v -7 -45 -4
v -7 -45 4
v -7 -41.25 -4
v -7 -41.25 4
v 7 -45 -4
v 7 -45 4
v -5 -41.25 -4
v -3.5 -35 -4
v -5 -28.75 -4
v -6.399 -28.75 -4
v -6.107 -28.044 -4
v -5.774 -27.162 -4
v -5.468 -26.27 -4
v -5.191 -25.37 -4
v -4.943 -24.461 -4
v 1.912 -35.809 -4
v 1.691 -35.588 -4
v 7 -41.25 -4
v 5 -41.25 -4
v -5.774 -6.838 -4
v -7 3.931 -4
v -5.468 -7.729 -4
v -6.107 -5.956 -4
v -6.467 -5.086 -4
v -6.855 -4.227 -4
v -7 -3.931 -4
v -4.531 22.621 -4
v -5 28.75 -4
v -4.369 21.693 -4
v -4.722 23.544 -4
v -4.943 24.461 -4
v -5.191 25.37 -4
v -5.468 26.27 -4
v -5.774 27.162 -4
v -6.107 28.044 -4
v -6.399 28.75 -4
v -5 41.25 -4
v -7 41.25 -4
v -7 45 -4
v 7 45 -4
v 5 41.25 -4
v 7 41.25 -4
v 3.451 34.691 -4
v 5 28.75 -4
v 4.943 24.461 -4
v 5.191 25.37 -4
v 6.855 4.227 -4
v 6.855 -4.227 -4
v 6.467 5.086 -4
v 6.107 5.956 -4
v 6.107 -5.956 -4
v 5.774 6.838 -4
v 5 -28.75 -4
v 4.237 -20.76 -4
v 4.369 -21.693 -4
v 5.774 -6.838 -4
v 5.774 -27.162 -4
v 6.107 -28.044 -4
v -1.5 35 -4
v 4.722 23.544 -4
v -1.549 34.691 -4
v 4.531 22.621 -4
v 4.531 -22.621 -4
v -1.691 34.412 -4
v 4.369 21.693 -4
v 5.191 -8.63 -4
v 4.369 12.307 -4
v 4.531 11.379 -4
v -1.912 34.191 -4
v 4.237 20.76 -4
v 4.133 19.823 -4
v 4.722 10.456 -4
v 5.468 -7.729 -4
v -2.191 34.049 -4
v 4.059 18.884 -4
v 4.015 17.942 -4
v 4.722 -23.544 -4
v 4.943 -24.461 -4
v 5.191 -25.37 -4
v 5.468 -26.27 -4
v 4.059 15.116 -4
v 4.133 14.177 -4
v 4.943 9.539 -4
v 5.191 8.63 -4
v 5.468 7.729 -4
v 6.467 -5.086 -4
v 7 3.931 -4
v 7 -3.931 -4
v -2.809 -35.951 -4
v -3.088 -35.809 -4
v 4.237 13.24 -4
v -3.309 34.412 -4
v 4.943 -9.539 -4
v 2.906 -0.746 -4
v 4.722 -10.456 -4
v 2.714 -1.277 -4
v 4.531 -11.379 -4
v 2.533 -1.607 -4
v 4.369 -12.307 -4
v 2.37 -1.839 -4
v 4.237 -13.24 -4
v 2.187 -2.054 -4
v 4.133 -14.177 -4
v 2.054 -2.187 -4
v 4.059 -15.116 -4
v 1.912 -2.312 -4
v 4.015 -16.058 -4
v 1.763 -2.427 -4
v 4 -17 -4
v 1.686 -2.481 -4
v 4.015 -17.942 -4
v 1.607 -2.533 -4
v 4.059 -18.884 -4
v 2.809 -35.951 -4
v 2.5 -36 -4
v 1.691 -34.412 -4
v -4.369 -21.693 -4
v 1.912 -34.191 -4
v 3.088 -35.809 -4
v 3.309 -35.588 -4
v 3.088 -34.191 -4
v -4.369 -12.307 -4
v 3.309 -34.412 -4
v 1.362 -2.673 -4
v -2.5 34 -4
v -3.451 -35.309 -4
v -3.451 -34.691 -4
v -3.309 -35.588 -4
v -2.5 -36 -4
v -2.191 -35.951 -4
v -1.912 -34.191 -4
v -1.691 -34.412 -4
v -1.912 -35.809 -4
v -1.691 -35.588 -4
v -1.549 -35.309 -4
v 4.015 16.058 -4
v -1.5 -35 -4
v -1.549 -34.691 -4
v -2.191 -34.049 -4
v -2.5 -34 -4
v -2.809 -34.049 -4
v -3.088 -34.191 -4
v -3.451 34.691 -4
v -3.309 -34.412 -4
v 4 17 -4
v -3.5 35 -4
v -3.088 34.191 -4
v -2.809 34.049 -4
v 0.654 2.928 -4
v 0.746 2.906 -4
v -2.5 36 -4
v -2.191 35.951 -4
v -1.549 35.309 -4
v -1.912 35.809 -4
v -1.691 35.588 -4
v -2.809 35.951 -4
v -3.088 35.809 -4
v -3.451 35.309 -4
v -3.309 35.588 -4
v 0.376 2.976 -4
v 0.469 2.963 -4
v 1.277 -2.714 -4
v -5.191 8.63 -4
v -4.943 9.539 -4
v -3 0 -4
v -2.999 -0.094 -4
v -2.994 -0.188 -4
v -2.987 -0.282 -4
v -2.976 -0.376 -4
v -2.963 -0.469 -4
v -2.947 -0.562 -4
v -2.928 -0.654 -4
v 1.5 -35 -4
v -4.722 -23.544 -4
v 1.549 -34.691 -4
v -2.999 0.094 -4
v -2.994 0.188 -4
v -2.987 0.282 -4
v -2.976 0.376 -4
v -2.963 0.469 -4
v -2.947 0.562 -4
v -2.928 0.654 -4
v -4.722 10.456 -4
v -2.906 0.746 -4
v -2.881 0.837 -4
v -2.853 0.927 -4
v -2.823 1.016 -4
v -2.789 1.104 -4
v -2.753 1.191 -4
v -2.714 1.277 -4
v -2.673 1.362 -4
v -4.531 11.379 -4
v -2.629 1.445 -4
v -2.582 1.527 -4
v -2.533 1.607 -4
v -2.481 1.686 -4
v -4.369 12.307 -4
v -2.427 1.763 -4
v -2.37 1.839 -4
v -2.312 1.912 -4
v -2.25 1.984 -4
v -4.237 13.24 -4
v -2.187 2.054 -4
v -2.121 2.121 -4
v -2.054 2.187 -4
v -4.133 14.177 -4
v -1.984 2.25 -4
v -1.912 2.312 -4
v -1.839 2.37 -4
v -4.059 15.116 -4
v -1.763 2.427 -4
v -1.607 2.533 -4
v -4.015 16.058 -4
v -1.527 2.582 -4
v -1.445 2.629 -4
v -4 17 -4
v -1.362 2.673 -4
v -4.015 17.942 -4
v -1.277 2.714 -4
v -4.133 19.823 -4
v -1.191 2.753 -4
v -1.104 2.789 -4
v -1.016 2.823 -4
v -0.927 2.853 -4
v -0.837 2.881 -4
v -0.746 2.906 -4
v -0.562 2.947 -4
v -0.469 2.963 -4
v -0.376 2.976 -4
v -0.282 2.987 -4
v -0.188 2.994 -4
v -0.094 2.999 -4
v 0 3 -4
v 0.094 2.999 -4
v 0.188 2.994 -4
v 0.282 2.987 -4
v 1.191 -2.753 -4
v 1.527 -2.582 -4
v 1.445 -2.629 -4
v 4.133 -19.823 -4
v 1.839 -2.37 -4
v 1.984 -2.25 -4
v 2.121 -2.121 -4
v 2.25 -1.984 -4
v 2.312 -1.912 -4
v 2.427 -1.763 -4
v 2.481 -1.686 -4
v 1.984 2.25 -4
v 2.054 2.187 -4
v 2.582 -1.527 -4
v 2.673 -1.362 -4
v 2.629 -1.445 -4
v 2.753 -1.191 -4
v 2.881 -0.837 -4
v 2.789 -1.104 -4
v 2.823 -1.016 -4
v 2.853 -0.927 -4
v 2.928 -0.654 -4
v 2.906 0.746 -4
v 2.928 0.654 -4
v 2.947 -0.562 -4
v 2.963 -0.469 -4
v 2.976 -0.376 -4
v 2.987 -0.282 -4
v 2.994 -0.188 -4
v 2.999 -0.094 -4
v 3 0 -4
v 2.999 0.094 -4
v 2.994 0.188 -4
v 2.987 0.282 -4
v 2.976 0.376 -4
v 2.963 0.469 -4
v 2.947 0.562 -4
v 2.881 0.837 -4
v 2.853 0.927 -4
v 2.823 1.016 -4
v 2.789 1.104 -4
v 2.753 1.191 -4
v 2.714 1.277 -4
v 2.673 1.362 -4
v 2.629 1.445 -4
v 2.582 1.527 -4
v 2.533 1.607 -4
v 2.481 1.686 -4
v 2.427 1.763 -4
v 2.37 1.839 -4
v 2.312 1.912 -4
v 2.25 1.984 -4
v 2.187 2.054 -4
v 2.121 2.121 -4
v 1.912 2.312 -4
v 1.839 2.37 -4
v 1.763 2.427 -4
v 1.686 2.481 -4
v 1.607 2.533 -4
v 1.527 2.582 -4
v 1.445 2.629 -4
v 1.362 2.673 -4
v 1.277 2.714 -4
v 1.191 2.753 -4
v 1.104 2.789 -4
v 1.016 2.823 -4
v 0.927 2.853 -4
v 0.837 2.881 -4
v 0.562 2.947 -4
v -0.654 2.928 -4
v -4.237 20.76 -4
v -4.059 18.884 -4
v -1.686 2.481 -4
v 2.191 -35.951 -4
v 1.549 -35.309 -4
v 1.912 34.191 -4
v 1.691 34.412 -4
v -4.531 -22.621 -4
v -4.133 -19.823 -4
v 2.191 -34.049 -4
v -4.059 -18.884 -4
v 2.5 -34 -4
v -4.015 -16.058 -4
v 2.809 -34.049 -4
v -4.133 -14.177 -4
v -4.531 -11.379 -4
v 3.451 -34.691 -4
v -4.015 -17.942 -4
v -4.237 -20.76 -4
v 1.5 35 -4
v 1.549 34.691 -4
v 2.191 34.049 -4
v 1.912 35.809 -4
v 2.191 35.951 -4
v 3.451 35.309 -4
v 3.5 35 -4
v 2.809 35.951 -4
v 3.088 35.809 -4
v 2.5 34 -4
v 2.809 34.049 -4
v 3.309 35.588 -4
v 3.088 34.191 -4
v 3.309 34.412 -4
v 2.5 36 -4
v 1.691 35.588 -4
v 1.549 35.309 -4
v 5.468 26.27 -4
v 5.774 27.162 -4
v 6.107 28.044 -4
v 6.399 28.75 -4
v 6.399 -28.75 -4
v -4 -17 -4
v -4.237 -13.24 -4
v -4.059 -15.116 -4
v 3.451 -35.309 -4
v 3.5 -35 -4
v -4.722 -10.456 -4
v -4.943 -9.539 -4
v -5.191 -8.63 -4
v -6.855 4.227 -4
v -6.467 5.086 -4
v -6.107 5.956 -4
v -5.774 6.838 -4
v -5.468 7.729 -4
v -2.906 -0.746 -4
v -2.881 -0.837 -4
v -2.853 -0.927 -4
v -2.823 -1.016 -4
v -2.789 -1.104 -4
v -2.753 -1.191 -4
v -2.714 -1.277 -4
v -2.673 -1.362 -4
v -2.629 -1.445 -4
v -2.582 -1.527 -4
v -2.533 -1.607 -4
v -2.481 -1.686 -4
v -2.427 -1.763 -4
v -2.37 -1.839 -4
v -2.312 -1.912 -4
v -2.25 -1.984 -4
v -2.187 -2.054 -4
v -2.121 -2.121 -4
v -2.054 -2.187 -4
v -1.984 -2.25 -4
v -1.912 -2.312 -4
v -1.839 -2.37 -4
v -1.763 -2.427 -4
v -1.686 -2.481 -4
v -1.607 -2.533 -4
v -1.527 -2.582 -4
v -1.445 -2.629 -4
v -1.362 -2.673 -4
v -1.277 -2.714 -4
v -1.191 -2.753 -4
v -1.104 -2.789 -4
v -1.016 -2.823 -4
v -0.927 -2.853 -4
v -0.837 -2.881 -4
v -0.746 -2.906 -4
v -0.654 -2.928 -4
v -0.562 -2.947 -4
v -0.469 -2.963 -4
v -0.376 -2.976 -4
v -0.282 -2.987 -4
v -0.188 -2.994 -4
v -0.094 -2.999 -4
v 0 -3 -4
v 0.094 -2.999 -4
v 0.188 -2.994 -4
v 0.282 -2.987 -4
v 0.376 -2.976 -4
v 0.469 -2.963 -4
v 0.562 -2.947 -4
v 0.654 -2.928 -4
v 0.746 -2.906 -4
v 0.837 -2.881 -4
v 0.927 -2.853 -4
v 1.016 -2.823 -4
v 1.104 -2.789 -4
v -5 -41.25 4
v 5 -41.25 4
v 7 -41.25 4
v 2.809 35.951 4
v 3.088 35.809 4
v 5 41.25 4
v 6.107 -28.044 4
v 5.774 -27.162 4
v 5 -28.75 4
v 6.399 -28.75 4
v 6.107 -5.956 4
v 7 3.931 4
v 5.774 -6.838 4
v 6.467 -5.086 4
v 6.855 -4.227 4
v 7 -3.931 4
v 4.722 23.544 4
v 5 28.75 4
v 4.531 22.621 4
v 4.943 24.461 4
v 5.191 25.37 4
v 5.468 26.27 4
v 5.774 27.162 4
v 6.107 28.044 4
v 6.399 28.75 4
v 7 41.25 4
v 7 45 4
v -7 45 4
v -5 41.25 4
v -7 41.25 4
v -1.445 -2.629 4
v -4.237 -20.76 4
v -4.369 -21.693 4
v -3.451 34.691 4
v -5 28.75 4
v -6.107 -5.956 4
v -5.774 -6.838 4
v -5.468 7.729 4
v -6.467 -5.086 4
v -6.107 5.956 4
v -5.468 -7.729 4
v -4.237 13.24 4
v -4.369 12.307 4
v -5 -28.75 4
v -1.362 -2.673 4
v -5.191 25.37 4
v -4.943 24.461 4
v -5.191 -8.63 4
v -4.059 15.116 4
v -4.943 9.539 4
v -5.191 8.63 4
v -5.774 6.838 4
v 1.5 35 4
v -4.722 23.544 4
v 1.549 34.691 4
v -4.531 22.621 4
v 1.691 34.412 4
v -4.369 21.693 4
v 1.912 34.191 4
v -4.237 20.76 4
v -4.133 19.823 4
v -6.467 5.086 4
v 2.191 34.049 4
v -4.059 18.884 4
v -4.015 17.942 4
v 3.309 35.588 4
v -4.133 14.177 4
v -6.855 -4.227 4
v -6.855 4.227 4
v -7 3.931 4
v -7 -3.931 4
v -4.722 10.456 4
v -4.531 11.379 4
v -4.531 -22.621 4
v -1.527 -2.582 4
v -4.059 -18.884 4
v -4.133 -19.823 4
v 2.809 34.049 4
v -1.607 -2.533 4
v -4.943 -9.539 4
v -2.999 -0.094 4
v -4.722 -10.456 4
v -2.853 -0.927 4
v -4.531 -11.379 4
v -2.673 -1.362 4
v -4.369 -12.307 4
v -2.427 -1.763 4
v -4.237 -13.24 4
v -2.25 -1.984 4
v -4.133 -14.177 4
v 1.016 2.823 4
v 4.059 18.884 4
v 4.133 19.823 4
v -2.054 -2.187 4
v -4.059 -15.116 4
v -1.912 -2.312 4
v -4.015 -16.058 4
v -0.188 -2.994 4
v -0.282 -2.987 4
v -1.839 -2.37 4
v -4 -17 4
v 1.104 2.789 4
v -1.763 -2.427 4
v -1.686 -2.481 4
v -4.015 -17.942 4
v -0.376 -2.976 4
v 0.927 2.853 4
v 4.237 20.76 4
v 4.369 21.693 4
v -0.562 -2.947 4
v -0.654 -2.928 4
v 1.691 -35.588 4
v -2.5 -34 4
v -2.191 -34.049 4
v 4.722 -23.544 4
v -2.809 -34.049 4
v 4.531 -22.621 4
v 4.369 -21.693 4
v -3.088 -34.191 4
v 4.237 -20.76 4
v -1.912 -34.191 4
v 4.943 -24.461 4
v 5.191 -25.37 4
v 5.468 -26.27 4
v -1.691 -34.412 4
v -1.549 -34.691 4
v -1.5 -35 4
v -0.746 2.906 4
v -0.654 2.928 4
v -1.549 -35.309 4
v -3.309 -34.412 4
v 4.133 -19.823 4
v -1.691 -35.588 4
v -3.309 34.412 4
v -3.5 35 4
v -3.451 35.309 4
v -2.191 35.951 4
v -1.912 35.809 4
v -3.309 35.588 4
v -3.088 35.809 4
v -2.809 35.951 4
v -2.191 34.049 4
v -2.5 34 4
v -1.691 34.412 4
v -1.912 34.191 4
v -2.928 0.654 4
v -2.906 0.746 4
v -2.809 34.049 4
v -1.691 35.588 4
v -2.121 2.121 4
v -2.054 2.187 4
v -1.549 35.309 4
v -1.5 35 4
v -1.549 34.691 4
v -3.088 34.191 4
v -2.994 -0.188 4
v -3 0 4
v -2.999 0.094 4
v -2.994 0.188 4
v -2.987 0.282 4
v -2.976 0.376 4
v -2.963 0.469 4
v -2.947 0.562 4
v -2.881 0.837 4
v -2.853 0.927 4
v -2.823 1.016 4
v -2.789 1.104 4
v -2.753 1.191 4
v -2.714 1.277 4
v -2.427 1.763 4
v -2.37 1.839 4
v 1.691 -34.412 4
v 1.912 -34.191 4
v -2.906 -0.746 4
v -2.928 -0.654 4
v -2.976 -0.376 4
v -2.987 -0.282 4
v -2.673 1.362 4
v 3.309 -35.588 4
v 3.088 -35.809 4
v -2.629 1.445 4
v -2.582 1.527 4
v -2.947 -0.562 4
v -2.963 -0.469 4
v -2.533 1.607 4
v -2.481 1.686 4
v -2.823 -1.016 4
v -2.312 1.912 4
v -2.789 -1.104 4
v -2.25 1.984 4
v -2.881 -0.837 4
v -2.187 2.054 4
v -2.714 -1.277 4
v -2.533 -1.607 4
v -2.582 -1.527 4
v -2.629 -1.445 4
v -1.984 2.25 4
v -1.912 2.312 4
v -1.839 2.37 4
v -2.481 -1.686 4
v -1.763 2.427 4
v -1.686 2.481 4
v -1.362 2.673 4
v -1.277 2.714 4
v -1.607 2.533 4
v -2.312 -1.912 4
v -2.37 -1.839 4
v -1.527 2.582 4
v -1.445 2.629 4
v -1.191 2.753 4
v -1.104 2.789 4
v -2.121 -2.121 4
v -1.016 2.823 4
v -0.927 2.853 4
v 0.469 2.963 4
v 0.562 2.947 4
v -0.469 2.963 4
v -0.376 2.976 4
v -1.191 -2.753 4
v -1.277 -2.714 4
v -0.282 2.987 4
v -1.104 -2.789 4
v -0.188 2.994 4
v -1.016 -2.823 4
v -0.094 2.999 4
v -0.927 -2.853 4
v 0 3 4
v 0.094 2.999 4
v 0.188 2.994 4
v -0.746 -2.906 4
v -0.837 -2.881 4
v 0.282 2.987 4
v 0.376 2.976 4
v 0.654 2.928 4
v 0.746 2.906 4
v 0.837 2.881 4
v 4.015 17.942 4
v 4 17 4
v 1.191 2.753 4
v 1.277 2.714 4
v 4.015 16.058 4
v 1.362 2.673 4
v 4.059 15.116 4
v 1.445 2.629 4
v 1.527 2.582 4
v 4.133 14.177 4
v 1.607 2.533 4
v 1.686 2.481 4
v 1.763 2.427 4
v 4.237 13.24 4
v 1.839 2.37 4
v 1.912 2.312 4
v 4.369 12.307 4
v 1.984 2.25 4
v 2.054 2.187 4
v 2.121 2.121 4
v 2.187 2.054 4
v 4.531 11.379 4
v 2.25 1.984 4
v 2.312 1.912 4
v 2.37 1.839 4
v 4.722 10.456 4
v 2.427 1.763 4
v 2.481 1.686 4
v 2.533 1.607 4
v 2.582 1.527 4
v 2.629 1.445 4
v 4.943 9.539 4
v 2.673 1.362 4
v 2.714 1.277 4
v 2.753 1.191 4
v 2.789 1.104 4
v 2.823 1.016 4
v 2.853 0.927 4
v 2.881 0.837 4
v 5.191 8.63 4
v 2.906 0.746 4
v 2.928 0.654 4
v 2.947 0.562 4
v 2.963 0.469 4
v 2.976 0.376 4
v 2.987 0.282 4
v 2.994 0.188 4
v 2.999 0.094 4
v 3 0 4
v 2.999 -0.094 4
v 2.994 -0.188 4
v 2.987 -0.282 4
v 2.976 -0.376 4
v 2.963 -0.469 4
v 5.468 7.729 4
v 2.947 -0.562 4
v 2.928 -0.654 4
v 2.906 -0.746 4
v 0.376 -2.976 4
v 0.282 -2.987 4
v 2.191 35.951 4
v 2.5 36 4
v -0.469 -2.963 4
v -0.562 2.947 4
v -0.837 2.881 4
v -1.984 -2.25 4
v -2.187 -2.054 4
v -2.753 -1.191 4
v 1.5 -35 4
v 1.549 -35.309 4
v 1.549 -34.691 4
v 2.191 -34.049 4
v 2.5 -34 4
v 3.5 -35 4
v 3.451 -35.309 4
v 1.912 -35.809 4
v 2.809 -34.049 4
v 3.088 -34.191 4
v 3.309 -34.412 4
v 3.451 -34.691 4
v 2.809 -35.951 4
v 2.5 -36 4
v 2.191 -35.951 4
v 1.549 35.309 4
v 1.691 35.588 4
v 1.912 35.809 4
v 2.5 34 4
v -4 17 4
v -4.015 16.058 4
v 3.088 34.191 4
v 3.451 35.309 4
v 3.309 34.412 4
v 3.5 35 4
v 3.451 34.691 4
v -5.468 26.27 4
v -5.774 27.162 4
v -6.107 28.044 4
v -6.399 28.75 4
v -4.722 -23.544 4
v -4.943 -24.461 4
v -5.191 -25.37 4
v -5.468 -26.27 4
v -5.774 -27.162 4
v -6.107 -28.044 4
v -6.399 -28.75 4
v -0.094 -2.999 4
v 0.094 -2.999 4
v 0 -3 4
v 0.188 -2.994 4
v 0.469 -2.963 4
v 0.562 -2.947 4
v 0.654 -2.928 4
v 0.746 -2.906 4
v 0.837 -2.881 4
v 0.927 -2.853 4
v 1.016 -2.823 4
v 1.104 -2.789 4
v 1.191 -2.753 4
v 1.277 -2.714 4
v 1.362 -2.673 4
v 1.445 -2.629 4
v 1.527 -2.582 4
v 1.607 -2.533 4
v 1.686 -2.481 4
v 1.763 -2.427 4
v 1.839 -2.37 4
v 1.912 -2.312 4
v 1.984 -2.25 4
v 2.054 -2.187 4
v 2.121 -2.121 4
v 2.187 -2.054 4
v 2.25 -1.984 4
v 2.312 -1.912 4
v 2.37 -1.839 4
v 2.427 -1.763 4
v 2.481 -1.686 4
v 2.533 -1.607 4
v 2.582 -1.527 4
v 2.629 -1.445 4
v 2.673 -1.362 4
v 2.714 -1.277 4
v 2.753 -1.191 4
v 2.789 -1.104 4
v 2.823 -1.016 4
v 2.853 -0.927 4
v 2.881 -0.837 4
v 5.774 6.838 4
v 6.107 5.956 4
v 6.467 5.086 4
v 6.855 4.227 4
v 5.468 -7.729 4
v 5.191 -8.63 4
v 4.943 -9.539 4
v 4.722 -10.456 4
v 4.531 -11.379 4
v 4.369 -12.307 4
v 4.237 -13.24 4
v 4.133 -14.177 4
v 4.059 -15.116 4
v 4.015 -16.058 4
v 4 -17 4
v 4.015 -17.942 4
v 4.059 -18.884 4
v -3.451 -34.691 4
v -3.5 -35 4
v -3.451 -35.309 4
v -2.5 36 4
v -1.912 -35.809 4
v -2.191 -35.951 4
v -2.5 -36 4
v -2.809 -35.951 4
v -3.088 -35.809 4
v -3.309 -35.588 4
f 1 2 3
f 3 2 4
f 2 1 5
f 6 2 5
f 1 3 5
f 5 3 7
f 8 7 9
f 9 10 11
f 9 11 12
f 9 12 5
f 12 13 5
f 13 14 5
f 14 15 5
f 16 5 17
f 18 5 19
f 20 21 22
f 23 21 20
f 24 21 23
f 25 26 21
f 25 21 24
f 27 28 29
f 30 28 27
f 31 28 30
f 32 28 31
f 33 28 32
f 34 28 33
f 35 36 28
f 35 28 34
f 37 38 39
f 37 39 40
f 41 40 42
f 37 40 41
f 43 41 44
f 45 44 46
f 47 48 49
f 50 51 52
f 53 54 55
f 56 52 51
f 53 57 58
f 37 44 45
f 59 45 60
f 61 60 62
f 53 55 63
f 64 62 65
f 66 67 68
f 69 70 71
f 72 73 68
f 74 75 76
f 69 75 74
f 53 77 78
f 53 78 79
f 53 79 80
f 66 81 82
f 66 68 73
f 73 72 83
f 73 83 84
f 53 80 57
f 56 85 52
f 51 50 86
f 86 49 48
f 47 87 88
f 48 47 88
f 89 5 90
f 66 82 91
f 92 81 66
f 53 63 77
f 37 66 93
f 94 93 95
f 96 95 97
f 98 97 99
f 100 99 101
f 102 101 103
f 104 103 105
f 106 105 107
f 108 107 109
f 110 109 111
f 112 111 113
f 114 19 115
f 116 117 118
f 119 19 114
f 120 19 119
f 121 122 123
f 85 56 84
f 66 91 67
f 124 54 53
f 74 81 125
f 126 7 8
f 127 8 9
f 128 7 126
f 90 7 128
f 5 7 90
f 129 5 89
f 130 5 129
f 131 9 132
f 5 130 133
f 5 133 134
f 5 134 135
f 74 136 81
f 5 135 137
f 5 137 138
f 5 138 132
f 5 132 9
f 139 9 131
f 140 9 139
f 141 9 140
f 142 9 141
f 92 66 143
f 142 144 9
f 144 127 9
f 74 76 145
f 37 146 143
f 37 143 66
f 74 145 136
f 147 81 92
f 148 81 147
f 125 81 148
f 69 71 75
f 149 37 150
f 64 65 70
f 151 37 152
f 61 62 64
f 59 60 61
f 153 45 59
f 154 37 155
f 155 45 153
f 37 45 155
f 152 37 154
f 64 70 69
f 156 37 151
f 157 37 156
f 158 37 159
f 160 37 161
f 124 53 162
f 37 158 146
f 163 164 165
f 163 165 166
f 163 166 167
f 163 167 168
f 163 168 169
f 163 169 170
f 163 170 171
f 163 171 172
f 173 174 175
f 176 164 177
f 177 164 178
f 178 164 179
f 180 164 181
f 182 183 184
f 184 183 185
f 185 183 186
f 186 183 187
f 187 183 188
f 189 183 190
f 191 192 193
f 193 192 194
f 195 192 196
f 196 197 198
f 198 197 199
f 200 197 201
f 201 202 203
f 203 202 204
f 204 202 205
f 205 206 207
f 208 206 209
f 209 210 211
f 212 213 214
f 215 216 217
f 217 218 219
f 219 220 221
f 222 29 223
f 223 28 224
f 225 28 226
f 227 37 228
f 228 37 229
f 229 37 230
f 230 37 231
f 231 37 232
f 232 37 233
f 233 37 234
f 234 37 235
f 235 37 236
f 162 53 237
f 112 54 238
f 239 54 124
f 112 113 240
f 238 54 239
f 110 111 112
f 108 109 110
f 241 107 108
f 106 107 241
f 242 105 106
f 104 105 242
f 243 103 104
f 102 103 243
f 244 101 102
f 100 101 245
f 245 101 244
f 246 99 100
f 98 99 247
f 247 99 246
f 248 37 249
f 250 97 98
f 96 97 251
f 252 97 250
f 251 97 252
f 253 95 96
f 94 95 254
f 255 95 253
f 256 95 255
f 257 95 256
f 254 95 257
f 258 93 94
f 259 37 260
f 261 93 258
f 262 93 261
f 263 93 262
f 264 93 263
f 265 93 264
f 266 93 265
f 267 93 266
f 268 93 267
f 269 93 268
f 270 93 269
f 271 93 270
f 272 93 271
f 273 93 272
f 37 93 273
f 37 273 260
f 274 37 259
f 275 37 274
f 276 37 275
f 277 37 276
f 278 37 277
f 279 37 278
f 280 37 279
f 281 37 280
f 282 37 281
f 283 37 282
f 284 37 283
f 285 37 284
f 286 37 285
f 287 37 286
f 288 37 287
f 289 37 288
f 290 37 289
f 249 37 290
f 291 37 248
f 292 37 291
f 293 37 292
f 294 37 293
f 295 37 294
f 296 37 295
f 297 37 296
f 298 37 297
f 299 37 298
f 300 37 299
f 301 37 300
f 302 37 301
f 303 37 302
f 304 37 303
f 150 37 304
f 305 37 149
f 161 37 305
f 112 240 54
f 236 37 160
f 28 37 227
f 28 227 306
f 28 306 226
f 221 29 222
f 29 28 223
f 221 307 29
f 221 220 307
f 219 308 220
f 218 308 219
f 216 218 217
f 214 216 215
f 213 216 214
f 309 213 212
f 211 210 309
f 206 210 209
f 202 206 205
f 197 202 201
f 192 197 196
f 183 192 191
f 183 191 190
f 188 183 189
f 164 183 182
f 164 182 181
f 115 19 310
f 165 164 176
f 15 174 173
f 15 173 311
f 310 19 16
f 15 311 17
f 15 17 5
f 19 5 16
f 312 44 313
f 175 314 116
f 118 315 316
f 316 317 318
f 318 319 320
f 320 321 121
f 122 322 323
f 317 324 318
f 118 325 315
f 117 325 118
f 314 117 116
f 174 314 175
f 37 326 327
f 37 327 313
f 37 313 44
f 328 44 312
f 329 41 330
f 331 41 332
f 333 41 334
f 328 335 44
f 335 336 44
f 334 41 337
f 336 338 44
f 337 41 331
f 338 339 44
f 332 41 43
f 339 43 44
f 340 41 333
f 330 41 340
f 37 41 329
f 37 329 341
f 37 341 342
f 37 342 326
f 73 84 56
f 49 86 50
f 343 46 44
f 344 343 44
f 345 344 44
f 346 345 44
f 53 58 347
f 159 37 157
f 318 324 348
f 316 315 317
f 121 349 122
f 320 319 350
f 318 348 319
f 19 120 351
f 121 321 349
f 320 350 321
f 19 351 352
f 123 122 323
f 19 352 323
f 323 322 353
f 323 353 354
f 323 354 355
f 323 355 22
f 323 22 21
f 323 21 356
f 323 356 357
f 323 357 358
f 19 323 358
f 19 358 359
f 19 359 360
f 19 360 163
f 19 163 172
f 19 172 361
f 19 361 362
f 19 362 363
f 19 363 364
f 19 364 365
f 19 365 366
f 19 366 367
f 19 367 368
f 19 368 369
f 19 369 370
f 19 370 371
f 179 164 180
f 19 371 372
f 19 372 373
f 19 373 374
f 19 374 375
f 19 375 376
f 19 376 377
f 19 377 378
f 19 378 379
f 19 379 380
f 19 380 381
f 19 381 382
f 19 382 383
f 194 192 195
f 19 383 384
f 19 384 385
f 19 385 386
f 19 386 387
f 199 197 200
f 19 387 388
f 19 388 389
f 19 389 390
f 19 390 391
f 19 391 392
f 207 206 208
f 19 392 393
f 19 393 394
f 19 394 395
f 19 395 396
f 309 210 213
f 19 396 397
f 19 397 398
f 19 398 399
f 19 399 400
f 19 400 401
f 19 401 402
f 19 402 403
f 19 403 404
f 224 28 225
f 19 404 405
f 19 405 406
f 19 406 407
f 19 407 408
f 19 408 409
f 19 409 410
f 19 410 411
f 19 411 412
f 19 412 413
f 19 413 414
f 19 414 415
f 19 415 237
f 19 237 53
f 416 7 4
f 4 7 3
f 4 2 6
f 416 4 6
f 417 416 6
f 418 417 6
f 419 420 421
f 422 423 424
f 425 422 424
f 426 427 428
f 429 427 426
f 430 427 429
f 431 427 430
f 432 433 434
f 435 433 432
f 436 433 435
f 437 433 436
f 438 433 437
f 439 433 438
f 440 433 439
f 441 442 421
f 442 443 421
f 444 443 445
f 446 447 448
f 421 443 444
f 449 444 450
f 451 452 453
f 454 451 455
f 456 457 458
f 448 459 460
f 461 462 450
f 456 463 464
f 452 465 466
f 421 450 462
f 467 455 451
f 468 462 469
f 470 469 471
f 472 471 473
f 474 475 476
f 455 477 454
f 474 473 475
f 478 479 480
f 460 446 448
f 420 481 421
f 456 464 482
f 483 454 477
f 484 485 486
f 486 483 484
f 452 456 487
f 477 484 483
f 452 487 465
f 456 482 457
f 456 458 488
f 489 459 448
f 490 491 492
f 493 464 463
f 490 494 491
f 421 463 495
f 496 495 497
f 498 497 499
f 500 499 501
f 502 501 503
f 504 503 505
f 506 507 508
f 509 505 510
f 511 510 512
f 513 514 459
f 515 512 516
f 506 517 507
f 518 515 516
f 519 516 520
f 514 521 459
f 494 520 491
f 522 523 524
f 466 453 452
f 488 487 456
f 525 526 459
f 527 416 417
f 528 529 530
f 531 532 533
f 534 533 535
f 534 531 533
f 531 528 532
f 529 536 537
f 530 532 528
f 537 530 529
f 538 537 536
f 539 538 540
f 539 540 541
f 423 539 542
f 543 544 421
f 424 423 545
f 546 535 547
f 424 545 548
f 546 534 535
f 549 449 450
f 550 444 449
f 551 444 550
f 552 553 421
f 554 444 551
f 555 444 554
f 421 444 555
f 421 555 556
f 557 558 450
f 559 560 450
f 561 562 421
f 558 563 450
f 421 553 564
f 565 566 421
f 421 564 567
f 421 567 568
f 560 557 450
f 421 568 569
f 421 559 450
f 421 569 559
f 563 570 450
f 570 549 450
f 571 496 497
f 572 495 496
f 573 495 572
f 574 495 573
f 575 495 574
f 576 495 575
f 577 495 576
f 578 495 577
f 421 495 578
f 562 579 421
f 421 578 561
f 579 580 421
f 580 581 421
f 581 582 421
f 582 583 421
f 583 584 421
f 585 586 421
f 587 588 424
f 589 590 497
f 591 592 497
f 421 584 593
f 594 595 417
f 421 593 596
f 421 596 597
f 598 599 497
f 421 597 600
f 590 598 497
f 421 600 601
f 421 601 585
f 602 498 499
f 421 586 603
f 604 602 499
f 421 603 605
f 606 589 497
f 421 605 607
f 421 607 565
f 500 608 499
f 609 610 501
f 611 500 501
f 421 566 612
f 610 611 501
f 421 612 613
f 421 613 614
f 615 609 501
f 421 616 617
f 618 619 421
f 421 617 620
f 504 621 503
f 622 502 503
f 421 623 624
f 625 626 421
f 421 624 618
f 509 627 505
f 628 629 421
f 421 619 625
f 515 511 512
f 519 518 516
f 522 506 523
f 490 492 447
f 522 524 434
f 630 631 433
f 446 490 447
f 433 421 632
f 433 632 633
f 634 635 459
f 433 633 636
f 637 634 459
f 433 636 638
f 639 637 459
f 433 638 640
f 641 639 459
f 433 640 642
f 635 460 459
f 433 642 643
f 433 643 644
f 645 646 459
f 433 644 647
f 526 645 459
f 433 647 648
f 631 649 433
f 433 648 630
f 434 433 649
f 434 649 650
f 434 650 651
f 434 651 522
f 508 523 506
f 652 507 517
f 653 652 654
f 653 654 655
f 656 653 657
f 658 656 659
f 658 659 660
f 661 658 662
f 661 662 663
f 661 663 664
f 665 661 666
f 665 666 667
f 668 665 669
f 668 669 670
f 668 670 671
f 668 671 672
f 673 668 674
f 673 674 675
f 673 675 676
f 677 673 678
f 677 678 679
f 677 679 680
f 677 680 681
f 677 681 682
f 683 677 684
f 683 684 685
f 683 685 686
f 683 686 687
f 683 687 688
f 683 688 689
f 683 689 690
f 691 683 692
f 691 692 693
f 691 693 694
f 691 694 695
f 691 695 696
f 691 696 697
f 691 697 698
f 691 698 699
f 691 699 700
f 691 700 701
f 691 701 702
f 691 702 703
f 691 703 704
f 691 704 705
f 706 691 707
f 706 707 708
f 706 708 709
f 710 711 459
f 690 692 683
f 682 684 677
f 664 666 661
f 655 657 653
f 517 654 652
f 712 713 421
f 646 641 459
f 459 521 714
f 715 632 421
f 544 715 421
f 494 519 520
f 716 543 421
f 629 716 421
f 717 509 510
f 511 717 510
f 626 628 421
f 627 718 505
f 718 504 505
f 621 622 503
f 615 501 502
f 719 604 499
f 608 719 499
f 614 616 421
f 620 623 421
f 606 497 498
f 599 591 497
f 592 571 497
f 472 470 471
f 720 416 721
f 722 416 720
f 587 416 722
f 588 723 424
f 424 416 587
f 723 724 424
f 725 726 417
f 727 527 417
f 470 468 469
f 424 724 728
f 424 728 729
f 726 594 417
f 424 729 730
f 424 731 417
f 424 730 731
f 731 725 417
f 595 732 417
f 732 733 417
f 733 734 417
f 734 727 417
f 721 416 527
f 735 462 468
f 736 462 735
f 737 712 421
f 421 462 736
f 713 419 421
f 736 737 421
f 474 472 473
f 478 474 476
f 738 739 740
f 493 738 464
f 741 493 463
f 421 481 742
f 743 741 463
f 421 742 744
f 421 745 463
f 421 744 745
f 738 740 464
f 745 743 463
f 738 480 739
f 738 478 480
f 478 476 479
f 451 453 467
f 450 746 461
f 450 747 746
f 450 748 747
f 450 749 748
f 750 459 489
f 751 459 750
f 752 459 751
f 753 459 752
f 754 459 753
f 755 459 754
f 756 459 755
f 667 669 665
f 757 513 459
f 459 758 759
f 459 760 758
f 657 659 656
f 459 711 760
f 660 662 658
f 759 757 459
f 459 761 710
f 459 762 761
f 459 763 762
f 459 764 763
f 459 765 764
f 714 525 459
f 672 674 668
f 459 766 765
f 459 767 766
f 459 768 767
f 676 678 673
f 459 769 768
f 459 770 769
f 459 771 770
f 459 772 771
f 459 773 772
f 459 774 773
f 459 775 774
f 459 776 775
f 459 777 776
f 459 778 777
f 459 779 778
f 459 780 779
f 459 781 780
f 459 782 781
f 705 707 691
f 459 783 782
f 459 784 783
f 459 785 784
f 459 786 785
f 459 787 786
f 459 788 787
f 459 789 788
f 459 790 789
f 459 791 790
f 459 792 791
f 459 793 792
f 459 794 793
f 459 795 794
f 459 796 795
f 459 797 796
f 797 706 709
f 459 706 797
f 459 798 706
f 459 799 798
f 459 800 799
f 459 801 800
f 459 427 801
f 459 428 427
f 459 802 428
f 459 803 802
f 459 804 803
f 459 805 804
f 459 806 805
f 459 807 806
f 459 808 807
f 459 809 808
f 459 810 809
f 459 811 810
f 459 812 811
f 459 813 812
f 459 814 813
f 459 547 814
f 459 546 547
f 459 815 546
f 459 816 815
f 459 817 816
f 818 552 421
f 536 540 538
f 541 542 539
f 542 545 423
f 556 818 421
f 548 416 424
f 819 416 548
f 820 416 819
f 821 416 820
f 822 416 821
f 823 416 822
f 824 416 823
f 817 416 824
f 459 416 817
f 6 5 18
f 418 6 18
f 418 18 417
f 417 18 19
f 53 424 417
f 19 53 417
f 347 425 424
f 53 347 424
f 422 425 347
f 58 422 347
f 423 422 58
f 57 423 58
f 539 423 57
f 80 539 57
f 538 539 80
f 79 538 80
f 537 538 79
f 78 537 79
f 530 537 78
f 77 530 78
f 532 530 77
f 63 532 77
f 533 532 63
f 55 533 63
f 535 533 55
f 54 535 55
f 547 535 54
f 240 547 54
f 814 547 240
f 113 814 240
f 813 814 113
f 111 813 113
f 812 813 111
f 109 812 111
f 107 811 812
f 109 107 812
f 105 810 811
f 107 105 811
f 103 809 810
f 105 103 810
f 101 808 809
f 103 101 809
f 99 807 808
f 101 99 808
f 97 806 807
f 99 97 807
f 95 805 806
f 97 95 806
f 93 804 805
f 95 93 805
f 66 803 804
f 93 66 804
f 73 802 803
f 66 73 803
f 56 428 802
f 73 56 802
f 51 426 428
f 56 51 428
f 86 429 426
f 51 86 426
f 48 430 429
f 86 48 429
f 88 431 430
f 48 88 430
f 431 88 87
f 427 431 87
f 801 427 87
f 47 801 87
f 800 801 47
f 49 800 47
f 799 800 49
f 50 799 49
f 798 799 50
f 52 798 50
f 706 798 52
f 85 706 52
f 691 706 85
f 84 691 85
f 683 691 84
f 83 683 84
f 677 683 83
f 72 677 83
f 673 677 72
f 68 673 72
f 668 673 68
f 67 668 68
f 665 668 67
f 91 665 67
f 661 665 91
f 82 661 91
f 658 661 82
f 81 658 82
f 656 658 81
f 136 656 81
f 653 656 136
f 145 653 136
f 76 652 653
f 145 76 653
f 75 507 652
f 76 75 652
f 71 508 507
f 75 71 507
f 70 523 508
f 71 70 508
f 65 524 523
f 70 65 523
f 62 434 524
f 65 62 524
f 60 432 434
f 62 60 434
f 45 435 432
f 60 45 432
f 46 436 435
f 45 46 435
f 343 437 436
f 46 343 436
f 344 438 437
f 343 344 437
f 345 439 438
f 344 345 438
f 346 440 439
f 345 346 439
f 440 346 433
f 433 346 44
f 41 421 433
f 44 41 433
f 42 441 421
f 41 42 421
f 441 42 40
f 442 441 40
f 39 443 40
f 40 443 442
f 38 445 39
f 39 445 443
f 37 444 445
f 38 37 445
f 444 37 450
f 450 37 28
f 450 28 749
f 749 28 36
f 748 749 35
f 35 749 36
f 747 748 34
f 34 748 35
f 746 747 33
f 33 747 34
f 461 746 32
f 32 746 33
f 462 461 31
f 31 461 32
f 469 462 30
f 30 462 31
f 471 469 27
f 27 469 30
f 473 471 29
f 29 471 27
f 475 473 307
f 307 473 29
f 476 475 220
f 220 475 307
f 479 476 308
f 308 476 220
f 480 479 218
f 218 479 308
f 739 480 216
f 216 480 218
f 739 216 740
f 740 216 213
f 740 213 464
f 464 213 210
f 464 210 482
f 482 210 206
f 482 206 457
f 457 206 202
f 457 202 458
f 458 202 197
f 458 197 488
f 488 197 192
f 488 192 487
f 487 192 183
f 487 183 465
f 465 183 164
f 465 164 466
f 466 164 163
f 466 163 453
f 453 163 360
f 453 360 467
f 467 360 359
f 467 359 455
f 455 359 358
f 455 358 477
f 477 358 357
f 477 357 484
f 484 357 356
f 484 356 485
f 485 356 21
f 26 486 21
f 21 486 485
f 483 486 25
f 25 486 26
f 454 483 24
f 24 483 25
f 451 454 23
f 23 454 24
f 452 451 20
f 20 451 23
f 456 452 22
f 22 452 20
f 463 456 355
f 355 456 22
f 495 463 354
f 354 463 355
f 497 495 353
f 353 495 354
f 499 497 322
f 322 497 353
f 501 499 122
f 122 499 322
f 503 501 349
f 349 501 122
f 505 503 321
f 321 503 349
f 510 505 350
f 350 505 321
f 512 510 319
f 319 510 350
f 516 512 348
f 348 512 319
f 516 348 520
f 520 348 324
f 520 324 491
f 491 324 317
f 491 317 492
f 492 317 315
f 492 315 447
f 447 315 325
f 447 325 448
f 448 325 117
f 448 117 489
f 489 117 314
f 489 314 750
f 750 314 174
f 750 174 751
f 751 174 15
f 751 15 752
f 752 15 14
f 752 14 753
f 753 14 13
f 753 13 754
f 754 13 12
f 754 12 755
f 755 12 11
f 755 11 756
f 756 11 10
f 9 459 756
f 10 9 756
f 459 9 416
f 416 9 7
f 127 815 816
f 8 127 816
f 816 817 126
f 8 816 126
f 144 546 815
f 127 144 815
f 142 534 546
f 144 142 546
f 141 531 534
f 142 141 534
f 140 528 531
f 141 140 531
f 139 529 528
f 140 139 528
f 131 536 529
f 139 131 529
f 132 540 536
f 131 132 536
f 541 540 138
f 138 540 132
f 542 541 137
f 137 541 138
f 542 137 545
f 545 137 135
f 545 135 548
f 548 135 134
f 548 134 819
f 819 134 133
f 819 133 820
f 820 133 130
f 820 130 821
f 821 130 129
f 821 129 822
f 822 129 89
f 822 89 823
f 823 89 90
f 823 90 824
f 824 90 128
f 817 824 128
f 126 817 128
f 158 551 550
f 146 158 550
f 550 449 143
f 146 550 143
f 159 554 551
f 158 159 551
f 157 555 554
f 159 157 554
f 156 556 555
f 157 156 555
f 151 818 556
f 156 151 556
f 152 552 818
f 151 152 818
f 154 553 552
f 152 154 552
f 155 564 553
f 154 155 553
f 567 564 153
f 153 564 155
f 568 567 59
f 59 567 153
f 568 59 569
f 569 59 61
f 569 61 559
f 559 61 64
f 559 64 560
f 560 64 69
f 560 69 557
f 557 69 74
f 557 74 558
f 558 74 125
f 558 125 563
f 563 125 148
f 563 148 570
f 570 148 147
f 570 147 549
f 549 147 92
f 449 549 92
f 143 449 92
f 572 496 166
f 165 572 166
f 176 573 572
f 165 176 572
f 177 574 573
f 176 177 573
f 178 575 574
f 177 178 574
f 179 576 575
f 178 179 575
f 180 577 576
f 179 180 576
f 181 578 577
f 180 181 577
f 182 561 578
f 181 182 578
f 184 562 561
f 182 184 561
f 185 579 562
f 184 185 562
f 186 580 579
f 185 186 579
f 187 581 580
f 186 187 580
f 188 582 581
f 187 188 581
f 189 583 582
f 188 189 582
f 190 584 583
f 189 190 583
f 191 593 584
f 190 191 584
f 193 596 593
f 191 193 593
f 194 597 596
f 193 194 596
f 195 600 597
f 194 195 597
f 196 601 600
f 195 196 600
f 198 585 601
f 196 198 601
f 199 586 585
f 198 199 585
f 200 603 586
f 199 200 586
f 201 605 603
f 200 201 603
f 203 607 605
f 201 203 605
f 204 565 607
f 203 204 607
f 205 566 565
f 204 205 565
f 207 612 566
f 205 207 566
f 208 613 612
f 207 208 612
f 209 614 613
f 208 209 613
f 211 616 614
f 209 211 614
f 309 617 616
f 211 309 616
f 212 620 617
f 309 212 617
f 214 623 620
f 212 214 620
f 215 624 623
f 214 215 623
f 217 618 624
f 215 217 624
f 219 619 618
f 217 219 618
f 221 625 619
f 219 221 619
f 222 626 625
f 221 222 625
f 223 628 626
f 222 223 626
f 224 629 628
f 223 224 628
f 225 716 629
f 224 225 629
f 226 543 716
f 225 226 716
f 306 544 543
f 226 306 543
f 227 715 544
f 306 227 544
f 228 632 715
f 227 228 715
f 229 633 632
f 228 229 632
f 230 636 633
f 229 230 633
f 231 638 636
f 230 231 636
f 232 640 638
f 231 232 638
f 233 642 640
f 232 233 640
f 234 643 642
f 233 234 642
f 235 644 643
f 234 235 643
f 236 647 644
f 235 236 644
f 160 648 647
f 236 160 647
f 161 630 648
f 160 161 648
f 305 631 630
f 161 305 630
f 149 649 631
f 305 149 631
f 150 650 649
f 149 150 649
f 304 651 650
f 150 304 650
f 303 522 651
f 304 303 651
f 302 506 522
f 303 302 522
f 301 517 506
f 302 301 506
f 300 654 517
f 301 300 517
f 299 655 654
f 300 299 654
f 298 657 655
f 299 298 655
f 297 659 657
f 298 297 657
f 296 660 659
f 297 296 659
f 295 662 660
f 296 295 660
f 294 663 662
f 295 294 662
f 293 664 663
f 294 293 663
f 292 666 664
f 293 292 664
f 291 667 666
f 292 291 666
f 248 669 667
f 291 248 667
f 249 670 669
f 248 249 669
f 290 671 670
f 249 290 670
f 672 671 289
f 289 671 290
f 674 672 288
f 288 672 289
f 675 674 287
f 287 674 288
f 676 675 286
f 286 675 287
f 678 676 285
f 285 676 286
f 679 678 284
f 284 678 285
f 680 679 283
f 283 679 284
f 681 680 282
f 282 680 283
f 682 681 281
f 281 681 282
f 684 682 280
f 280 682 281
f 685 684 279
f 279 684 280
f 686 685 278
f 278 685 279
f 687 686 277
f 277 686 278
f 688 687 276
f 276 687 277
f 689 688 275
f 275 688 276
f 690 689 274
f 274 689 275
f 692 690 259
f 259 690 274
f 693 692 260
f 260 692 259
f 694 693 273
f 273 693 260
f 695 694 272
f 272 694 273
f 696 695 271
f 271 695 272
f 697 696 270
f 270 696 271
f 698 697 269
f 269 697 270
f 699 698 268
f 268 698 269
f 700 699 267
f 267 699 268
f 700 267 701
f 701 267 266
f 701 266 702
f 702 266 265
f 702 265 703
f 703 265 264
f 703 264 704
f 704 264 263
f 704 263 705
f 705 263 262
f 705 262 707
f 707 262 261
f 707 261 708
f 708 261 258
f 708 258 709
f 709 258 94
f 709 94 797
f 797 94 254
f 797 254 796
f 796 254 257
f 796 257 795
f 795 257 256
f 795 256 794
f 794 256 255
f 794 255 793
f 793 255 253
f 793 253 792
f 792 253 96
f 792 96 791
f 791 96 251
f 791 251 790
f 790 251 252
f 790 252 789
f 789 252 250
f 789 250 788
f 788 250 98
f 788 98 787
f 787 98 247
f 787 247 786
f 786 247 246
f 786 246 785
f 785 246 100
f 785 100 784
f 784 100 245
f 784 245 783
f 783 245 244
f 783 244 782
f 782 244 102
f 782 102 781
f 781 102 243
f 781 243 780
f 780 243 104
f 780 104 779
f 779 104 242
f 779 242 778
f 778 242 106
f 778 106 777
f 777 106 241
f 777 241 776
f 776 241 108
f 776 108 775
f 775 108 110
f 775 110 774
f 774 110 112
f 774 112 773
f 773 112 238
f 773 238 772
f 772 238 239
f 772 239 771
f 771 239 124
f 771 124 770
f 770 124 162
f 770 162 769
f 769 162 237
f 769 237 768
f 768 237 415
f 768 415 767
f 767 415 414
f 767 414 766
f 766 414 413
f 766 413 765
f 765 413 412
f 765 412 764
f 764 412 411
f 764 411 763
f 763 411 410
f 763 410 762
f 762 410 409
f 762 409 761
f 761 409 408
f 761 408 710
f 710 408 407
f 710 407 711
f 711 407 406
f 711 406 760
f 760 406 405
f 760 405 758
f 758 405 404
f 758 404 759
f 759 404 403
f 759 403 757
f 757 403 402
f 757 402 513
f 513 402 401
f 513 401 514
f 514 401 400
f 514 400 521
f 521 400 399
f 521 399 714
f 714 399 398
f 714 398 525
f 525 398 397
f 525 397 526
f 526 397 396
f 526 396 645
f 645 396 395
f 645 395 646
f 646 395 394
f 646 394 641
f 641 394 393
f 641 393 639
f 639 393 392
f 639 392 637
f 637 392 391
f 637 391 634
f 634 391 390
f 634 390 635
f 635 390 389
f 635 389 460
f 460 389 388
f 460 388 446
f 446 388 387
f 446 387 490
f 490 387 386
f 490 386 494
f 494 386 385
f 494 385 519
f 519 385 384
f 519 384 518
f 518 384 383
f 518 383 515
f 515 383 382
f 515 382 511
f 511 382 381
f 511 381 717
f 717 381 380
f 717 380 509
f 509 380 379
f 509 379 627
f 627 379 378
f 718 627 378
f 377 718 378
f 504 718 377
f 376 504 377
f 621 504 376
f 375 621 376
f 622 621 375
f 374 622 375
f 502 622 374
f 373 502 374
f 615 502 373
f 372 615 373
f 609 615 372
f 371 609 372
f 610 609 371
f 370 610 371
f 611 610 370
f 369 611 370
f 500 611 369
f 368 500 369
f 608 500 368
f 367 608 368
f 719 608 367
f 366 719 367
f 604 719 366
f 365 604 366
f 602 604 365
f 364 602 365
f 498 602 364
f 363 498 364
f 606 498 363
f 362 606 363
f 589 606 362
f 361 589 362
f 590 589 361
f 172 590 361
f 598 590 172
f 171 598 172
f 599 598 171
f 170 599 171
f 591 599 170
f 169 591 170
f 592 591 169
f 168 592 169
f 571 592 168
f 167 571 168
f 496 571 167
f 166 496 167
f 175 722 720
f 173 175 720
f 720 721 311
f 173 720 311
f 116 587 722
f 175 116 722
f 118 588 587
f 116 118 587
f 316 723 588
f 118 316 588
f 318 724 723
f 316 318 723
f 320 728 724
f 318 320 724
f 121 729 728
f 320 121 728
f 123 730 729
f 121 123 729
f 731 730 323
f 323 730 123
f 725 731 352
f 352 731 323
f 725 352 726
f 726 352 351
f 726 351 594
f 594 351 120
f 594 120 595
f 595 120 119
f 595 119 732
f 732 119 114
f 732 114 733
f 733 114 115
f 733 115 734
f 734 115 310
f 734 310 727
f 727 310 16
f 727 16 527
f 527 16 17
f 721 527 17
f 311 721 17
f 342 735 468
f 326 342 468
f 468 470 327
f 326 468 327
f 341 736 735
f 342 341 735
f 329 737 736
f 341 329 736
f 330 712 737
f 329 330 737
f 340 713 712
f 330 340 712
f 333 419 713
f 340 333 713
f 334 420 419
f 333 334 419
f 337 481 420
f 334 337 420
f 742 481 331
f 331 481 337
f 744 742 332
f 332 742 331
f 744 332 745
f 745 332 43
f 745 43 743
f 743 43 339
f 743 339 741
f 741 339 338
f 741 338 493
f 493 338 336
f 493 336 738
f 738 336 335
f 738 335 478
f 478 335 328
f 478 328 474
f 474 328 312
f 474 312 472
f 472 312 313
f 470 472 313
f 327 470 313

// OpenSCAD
backbone(90,14,8,23,12.5);

module backbone(bl,bw,bh,sl,sw){
	h_pos = ((bl-20) / 2);		
	difference(){
		// main
		translate([-(bw/2),-(bl/2),-(bh/2)]) color("purple") cube([bw,bl,bh]);

		//servo body cutouts
		for (i = [[-16.5,h_pos,0],[16.5,h_pos,0],[-16.5,-h_pos,0],[16.5,-h_pos,0]]){
			translate(i) #cube([sl,sw,bh], center=true);
		}		

		//servo mount holes
		for (i = [[2.5,h_pos,-10],[-2.5,h_pos,-10],[-2.5,-h_pos,-10],[2.5,-h_pos,-10]]){
			translate(i) cylinder(r=1,h=20,$fn=20);
		}

		//round side indents
		for (i = [[34,17,-5],[34,-17,-5],[-34,17,-5],[-34,-17,-5]]) {
			translate(i) cylinder(r=30,h=10,$fn=200);
		}

		//center hole
		translate([0,0,-4]) cylinder(r=3,h=10,$fn=200);
	}
}
